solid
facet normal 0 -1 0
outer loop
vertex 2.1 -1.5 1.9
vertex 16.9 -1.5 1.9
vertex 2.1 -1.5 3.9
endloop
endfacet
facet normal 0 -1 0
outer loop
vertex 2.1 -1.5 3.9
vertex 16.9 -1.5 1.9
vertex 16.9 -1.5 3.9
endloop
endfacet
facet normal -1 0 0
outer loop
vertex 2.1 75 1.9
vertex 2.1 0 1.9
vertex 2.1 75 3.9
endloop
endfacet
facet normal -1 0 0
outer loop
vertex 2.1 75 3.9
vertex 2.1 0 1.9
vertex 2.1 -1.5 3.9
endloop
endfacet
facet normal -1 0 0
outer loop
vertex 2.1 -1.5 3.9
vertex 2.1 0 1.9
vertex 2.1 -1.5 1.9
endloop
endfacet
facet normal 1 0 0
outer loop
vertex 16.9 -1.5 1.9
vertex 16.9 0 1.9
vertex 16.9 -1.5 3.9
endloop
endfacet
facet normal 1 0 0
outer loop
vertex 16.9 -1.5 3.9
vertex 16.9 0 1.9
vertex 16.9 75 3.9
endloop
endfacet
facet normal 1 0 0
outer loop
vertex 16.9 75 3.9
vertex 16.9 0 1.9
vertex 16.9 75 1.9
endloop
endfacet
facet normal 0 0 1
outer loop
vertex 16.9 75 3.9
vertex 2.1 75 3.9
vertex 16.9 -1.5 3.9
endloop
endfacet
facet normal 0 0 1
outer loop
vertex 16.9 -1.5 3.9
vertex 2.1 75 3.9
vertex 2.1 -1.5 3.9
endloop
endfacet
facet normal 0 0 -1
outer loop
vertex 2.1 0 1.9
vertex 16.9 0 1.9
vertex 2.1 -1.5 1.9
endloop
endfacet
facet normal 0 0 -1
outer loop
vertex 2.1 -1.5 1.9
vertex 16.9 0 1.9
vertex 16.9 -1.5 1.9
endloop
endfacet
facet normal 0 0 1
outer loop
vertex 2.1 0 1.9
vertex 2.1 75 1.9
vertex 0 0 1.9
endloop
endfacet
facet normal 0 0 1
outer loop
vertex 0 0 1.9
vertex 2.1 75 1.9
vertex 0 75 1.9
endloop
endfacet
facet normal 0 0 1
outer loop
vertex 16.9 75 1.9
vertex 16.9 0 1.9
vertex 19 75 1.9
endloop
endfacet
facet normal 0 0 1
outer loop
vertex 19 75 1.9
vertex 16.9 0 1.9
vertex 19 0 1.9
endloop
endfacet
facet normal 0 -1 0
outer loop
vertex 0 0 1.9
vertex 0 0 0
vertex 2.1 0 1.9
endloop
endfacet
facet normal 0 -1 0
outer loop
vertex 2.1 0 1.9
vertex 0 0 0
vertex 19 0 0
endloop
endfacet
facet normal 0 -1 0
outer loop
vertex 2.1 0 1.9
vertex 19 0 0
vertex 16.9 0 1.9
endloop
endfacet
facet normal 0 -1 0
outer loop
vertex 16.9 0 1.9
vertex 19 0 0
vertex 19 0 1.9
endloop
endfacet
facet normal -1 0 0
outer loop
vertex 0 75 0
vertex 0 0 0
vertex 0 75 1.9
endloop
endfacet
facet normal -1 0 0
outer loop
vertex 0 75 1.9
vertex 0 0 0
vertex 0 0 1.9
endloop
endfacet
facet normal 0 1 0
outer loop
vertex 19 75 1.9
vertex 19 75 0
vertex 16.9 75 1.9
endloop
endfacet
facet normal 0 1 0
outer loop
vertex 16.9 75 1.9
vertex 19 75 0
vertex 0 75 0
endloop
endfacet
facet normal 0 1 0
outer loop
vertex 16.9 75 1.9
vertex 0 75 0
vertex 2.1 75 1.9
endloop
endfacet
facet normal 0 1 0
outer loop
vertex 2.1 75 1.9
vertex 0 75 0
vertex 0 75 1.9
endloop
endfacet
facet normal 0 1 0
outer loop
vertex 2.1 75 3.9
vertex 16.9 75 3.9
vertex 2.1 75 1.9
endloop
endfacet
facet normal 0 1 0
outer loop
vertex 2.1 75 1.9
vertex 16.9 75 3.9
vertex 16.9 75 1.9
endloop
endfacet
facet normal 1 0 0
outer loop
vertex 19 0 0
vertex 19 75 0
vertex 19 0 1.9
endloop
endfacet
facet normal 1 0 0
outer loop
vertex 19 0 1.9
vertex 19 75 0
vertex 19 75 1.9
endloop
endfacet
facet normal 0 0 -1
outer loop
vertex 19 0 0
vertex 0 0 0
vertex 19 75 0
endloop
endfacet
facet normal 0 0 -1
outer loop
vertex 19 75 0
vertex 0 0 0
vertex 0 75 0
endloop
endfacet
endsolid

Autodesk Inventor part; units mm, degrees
ref_plane "YZ Plane" through (0, 0, 0) normal (1, 0, 0) x (0, 1, 0)
ref_plane "XZ Plane" through (0, 0, 0) normal (0, 1, 0) x (-1, 0, 0)
ref_plane "XY Plane" through (0, 0, 0) normal (0, 0, 1) x (1, 0, 0)
sketch "스케치1" plane through (0, 0, 0) normal (0, 0, 1) x (1, 0, 0)
  line L0 (0, 0) -> (19, 0)
  line L1 (19, 0) -> (19, 75)
  line L2 (19, 75) -> (0, 75)
  line L3 (0, 75) -> (0, 0)
  dimension "d0" = 19
  dimension "d1" = 75
extrude "돌출1" add sketch "스케치1" along normal blind 1.9
sketch "스케치2" plane through (0, 0, 1.9) normal (0, 0, 1) x (1, 0, 0)
  line L0 (2.1, 75) -> (16.9, 75)
  line L1 (16.9, 75) -> (16.9, -1.5)
  line L2 (16.9, -1.5) -> (2.1, -1.5)
  line L3 (2.1, -1.5) -> (2.1, 75)
  line L4 (19, 75) -> (0, 75) projected
  line L5 (0, 75) -> (0, 0) projected
  line L6 (19, 0) -> (19, 75) projected
  dimension "d4" = 0
  dimension "d5" = 2.1
  dimension "d6" = 2.1
  dimension "d7" = 76.5
extrude "돌출2" add sketch "스케치2" along normal blind 2
properties part number "magea"
